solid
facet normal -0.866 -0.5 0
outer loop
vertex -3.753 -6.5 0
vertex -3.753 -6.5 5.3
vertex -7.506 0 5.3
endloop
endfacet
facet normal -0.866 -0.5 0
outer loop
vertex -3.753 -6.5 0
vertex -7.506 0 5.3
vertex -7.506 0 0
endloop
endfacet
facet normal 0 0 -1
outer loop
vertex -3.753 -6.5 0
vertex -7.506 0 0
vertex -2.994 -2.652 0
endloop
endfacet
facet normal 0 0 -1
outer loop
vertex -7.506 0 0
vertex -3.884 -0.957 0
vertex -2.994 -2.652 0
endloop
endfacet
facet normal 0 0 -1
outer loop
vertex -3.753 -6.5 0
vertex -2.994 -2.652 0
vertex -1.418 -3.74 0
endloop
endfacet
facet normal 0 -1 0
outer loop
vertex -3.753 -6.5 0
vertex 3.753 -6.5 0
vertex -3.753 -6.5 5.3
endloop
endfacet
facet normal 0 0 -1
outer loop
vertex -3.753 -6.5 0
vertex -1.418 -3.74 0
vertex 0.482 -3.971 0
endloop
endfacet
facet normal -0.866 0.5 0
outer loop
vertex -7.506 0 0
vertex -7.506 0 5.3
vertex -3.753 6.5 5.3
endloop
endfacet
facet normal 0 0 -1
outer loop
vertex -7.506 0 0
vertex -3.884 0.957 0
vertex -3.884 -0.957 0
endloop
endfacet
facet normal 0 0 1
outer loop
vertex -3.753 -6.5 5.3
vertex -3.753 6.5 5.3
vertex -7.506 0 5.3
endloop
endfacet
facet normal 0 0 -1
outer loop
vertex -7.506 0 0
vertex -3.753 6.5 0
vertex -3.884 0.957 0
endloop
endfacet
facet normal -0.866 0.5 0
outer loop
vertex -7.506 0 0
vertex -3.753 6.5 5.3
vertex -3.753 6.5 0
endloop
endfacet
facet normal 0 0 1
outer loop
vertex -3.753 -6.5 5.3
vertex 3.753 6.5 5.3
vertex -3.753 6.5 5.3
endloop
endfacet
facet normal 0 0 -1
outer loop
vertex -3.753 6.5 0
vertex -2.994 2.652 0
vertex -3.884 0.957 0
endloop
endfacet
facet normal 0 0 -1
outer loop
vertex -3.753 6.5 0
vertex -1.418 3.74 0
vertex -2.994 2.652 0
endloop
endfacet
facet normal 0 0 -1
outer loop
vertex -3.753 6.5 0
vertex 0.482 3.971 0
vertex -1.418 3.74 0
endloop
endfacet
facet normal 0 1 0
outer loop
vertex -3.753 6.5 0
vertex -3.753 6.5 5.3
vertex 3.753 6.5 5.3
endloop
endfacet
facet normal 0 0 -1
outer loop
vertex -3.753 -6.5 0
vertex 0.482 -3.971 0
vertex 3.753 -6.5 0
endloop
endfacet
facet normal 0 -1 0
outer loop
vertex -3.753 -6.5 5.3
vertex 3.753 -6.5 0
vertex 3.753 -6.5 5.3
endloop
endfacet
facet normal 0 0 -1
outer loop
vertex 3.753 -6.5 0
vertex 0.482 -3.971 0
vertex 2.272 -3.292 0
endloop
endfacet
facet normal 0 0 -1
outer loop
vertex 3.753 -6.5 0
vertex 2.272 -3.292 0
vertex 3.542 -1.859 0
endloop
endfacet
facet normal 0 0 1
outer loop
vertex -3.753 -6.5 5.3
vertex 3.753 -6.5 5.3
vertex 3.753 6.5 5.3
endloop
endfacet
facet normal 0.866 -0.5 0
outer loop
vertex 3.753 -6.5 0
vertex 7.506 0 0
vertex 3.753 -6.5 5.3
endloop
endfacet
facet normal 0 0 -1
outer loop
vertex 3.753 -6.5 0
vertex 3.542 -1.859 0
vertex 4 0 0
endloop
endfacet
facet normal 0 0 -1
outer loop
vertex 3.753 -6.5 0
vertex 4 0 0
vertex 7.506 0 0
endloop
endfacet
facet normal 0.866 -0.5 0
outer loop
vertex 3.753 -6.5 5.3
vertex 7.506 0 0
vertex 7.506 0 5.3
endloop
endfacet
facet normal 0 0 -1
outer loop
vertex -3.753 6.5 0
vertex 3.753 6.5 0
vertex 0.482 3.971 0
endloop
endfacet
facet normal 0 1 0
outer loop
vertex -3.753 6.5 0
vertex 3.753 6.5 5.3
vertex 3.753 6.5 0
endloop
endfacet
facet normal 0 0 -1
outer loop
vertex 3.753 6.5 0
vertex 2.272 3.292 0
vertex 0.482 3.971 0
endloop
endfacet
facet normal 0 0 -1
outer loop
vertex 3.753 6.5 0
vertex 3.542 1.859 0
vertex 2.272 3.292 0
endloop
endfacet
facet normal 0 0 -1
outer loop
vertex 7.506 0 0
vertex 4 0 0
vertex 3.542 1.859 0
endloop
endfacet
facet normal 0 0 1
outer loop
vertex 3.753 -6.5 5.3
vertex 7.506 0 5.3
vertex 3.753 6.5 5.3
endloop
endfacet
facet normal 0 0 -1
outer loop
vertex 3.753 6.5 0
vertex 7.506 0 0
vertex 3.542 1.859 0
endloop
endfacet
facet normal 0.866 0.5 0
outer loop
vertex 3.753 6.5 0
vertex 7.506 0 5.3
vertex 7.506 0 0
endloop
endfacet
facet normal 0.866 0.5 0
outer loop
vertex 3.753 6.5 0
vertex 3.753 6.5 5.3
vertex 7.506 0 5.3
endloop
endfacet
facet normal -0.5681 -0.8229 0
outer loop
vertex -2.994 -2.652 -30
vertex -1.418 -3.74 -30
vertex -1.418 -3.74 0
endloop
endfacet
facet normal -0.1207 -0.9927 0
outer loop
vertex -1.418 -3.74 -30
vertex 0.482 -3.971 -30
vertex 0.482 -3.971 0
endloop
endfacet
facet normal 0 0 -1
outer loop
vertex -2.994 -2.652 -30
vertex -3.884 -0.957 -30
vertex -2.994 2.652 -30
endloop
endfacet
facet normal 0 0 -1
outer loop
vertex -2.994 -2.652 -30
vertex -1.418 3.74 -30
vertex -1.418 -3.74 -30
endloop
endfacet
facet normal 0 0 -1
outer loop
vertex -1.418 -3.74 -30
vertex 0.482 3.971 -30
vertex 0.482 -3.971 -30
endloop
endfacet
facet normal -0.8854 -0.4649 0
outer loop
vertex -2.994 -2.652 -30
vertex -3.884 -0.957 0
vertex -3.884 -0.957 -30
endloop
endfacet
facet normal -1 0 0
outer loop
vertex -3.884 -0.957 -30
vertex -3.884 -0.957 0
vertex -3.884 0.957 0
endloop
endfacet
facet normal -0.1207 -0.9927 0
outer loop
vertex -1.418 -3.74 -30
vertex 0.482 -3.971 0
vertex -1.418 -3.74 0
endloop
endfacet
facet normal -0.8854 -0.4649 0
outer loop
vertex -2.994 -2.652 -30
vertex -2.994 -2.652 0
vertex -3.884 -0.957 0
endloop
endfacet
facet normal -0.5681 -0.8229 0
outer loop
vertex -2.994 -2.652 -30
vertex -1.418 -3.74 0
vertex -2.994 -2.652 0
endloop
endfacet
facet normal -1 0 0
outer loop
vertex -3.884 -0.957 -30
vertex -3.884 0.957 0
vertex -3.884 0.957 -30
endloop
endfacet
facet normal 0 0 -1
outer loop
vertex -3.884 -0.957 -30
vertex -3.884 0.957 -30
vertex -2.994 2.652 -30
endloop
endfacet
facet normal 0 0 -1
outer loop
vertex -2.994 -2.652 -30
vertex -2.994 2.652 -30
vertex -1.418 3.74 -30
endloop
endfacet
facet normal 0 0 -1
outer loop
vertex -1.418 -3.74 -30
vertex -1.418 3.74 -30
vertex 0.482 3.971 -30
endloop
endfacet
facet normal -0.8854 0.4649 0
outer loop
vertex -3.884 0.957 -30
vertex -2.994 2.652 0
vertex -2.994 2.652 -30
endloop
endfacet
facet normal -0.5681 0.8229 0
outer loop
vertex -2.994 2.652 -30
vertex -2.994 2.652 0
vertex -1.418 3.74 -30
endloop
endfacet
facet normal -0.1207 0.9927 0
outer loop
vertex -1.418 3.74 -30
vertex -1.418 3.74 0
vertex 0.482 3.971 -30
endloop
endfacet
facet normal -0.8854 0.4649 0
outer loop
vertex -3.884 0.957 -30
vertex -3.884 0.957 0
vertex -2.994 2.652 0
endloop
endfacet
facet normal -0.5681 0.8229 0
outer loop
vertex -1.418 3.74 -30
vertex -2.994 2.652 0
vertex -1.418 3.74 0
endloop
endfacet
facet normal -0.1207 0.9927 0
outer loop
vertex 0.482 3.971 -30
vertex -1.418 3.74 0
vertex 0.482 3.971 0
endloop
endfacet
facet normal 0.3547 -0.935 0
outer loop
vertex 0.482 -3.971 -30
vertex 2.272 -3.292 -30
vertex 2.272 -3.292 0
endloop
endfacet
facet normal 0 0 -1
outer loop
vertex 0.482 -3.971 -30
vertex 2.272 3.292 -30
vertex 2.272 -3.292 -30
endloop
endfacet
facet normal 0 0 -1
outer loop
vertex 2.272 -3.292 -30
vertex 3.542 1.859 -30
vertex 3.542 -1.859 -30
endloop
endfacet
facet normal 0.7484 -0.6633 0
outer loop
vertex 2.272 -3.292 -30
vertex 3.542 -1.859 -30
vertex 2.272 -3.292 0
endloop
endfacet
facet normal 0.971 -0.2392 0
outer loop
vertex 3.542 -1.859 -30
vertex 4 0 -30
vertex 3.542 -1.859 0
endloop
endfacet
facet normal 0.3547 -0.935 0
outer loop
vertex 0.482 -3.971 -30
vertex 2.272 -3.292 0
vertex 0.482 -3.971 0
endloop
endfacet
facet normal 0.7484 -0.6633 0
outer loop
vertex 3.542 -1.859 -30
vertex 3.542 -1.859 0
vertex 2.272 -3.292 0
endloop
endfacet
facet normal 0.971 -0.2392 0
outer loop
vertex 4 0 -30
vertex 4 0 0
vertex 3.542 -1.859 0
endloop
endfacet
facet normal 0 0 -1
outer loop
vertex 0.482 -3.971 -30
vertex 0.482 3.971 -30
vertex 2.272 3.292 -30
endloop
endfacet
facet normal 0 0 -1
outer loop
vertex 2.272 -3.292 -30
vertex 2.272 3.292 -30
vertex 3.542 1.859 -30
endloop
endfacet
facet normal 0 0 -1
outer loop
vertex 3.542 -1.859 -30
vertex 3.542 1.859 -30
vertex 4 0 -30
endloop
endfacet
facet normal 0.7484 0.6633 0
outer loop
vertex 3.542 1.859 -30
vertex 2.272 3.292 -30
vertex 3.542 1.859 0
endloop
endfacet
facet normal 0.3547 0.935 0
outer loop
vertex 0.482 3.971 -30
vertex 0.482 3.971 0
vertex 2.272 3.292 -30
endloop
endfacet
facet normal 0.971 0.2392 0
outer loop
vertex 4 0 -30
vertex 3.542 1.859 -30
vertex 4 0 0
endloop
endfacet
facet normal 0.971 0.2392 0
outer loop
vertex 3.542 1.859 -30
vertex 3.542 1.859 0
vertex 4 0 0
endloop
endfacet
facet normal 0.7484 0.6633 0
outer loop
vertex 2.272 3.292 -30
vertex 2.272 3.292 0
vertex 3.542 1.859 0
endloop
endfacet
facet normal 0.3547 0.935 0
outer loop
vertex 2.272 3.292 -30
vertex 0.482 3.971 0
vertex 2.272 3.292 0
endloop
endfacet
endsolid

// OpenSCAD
across_flats = 13;
head_height = 5.3;
shank_diameter = 8;
shank_length = 30;

union() {
    cylinder(
        h = head_height,
        d = 2 * across_flats / sqrt(3),
        $fn = 6
    );

    translate([0, 0, -shank_length])
        cylinder(h = shank_length, d = shank_diameter);
}
